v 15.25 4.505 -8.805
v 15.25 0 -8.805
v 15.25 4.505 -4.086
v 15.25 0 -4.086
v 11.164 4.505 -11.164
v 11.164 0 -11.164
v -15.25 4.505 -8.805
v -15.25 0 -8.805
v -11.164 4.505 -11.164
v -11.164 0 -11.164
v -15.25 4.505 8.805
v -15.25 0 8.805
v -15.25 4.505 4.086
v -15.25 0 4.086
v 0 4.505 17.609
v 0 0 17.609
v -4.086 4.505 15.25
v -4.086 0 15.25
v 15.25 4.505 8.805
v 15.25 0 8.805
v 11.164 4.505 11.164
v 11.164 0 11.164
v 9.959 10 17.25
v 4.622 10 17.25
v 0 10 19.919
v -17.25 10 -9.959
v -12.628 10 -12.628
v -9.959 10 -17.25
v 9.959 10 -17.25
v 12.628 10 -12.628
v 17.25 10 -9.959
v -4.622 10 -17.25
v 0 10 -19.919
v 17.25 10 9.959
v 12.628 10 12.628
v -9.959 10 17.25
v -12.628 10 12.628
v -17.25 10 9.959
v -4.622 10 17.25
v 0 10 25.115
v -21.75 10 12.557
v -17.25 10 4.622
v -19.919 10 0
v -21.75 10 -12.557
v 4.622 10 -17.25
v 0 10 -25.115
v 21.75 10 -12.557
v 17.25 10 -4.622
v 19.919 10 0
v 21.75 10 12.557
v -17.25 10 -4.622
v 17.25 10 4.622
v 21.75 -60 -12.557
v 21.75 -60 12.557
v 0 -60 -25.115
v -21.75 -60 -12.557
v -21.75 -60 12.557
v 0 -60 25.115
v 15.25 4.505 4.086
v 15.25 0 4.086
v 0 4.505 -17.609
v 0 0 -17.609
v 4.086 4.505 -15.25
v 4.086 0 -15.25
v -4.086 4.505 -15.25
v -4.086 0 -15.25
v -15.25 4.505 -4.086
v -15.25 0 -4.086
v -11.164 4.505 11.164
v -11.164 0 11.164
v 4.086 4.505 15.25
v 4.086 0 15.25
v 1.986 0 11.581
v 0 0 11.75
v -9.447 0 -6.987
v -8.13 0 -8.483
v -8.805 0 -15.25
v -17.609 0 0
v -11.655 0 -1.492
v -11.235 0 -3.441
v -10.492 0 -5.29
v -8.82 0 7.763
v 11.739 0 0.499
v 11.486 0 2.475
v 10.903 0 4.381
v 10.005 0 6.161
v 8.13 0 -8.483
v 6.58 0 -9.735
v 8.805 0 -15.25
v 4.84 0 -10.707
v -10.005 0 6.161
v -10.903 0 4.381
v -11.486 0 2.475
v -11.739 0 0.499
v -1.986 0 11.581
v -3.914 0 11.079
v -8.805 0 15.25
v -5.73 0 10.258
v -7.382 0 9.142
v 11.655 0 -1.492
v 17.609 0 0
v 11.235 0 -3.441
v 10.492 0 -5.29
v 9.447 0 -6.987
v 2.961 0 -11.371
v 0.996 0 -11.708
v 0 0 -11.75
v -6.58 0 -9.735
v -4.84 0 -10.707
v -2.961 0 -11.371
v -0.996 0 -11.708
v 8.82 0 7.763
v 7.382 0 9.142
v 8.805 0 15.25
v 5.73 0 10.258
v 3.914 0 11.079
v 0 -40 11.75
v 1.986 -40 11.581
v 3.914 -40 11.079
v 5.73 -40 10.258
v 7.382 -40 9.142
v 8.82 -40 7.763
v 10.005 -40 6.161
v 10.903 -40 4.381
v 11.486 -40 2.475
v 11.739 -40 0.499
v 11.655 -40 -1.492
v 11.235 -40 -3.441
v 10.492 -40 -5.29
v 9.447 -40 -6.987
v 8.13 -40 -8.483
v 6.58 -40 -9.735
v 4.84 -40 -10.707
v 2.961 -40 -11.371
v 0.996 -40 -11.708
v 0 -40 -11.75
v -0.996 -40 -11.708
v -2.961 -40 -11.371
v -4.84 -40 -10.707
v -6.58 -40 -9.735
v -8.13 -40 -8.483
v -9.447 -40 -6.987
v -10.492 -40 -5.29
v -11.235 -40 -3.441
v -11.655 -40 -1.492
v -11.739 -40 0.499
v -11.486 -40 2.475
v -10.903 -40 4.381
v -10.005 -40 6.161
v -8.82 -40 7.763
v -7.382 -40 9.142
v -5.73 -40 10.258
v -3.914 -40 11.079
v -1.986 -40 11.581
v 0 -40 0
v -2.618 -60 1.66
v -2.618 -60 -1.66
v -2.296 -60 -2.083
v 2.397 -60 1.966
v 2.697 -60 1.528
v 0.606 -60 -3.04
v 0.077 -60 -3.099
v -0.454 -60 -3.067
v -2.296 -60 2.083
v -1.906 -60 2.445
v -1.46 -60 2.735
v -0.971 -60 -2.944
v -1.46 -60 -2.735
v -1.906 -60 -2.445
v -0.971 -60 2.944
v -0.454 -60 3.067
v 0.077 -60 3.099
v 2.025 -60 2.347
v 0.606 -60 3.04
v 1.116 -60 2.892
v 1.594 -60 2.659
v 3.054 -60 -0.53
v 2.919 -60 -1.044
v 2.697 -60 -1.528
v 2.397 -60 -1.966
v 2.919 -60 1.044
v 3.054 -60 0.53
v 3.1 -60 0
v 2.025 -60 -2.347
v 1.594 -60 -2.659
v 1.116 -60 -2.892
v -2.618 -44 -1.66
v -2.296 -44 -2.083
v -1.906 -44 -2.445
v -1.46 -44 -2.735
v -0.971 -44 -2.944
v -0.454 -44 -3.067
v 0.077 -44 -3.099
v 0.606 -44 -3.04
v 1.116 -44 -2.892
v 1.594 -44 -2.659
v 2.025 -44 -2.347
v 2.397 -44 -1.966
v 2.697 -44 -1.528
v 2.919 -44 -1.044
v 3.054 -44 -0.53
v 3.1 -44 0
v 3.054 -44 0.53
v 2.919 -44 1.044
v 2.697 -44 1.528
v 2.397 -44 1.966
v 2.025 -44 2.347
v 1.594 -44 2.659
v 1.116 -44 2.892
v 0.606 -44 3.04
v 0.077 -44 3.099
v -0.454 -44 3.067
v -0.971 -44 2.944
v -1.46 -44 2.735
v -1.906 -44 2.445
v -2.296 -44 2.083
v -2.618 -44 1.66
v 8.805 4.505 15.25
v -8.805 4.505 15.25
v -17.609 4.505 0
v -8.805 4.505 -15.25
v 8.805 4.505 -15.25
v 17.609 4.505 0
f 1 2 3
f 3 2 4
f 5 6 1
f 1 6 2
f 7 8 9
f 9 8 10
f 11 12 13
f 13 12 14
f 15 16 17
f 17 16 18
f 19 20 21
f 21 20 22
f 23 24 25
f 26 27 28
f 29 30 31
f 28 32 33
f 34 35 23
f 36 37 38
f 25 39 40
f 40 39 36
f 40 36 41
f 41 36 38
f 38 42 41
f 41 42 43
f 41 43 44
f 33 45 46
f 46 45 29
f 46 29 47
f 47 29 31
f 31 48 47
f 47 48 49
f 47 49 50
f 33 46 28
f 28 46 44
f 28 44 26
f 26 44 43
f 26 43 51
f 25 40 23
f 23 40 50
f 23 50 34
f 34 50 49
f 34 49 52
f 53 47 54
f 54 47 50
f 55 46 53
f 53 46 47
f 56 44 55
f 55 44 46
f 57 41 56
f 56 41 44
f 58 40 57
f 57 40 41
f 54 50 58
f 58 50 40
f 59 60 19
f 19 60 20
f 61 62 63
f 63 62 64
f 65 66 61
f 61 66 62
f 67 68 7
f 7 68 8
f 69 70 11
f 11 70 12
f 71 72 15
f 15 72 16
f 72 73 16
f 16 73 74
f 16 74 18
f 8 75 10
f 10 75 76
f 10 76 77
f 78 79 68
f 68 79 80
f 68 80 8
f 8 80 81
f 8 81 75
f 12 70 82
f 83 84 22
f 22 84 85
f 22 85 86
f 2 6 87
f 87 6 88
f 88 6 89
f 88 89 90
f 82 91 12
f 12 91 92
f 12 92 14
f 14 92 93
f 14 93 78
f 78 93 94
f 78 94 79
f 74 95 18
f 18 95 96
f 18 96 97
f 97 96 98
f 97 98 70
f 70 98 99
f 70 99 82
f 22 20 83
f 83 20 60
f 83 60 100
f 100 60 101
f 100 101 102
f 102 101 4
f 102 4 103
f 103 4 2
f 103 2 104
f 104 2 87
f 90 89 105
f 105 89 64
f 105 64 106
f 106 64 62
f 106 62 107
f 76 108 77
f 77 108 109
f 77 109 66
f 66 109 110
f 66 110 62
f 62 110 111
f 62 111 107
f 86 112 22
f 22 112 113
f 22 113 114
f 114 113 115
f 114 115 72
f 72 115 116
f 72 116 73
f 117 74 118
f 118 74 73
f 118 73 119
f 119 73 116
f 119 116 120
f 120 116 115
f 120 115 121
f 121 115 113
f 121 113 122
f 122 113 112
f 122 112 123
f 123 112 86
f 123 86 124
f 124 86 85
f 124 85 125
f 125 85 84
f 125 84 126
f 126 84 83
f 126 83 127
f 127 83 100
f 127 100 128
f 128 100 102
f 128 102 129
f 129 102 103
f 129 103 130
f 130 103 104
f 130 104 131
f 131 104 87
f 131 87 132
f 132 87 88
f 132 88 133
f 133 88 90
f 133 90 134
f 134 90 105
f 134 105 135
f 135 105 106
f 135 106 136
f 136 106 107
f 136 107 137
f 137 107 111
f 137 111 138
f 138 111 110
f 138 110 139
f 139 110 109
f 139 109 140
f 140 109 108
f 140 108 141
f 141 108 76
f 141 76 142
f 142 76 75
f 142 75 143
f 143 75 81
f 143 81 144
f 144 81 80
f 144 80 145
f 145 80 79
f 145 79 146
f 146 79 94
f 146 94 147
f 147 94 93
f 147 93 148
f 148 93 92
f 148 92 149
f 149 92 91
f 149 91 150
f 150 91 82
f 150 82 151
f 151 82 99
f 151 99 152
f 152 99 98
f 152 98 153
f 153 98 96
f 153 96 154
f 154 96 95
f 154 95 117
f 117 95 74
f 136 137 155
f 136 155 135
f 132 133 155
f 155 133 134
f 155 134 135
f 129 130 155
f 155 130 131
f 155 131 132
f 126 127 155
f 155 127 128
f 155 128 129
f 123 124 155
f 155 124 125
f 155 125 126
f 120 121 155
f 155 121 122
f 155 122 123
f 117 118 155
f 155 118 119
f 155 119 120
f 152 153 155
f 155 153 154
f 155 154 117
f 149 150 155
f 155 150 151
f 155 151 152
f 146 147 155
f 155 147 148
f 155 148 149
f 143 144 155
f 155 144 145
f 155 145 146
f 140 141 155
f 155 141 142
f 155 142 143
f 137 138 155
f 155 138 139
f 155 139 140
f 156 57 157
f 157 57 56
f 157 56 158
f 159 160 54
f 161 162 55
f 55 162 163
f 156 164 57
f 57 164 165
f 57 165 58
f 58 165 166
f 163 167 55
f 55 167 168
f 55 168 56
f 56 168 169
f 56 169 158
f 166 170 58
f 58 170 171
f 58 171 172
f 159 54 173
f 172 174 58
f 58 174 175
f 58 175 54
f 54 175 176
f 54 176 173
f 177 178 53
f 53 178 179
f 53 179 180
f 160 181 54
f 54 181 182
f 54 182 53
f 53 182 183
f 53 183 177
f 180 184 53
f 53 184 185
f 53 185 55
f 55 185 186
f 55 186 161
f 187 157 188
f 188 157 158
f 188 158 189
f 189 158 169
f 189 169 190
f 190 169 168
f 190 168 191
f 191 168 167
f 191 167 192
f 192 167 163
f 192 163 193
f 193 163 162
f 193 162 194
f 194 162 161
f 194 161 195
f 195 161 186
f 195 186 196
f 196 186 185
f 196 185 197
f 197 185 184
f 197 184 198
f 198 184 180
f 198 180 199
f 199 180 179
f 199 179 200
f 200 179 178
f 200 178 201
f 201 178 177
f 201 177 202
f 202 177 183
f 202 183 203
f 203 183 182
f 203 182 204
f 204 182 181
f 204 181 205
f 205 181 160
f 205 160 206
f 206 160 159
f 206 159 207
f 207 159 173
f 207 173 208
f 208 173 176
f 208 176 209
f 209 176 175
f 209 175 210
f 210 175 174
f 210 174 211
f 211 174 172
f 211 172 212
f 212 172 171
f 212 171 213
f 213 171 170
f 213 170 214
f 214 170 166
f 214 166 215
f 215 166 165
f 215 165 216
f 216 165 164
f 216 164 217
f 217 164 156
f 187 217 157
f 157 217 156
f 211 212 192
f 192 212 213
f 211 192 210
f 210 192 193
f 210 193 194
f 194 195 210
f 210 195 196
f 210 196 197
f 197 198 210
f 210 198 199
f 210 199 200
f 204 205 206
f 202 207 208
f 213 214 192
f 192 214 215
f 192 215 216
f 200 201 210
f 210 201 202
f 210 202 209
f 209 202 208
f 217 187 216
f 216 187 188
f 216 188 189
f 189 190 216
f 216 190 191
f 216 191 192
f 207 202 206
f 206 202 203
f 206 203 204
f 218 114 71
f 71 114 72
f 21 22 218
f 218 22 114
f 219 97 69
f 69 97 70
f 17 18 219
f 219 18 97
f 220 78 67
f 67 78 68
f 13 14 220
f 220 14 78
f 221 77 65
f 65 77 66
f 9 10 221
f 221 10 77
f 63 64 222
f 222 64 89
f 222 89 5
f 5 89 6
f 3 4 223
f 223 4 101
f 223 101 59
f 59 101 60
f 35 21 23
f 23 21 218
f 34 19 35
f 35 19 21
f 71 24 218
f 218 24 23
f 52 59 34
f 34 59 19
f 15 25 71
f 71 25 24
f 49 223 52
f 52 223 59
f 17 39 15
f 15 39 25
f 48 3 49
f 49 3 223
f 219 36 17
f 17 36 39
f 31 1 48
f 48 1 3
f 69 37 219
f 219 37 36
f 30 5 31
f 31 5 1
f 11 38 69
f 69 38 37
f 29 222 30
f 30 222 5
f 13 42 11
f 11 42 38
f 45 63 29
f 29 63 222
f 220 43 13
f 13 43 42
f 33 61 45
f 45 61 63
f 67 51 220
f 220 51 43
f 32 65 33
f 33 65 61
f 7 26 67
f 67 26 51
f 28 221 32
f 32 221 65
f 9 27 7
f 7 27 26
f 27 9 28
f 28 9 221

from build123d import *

# Parameters (mm, degrees)
BOSS_EXTRUDE1_DEPTH = 10
SKETCH2_R           = 11.75
BOSS_EXTRUDE2_DEPTH = 40
BOSS_EXTRUDE3_DEPTH = 20
CUT_EXTRUDE1_DEPTH  = 16
CUT_EXTRUDE2_DEPTH  = 10
CHAMFER1_SIZE       = 2
CHAMFER1_SIZE2      = 5.494954839


with BuildPart() as part:
    # Sketch1 → Boss-Extrude1 (new body)
    with BuildSketch(Plane(origin=(0, 0, 0), x_dir=(1, 0, 0), z_dir=(0, 1, 0))):
        Polygon((21.75, 12.557368355), (0, 25.11473671), (-21.75, 12.557368355), (-21.75, -12.557368355), (0, -25.11473671), (21.75, -12.557368355), align=None)
        Polygon((15.25, 8.804591605), (0, 17.60918321), (-15.25, 8.804591605), (-15.25, -8.804591605), (0, -17.60918321), (15.25, -8.804591605), align=None, mode=Mode.SUBTRACT)
    extrude(amount=BOSS_EXTRUDE1_DEPTH)

    # Sketch2 → Boss-Extrude2 (add)
    with BuildSketch(Plane.XZ):
        Polygon((21.75, 12.557368355), (0, 25.11473671), (-21.75, 12.557368355), (-21.75, -12.557368355), (0, -25.11473671), (21.75, -12.557368355), align=None)
        with Locations(Location((0, 0, 0), (0, 0, 270))):
            Circle(SKETCH2_R, mode=Mode.SUBTRACT)
    extrude(amount=BOSS_EXTRUDE2_DEPTH)

    # Sketch3 → Boss-Extrude3 (add)
    with BuildSketch(Plane.XZ.offset(40)):
        Polygon((21.75, 12.557368355), (0, 25.11473671), (-21.75, 12.557368355), (-21.75, -12.557368355), (0, -25.11473671), (21.75, -12.557368355), align=None)
    extrude(amount=BOSS_EXTRUDE3_DEPTH)

    # Sketch4 → Cut-Extrude1 (cut)
    with BuildSketch(Plane.XZ.offset(60)):
        with BuildLine():
            Line((-2.618090908, 1.66), (-2.618090908, -1.66))
            ThreePointArc((-2.618090908, -1.66), (3.1, 0), (-2.618090908, 1.66))
        make_face()
    extrude(amount=-CUT_EXTRUDE1_DEPTH, mode=Mode.SUBTRACT)

    # Sketch5 → Cut-Extrude2 (cut)
    with BuildSketch(Plane(origin=(0, 10, 0), x_dir=(1, 0, 0), z_dir=(0, 1, 0))):
        Polygon((8.804591605, 15.25), (-8.804591605, 15.25), (-17.60918321, 0), (-8.804591605, -15.25), (8.804591605, -15.25), (17.60918321, 0), align=None)
    extrude(amount=-CUT_EXTRUDE2_DEPTH, mode=Mode.SUBTRACT)

    # Chamfer1
    chamfer1_edges = [part.edges().sort_by_distance(p)[0] for p in [
        (-13.206887408, 10, -9.98418321),
        (2.043112592, 10, -16.429591605),
        (15.25, 10, -6.445408395),
        (16.429591605, 10, 2.043112592),
        (16.429591605, 10, -2.043112592),
        (9.98418321, 10, -13.206887408),
        (6.445408395, 10, -15.25),
        (-6.445408395, 10, -15.25),
        (-9.98418321, 10, -13.206887408),
        (-16.429591605, 10, -2.043112592),
        (-16.429591605, 10, 2.043112592),
        (-9.98418321, 10, 13.206887408),
        (-6.445408395, 10, 15.25),
        (6.445408395, 10, 15.25),
        (9.98418321, 10, 13.206887408),
        (15.25, 10, 6.445408395),
        (13.206887408, 10, -9.98418321),
        (-2.043112592, 10, -16.429591605),
        (-15.25, 10, -6.445408395),
        (-13.206887408, 10, 9.98418321),
        (2.043112592, 10, 16.429591605),
        (13.206887408, 10, 9.98418321),
        (-2.043112592, 10, 16.429591605),
        (-15.25, 10, 6.445408395),
    ]]
    chamfer1_side = [part.faces().sort_by_distance(p)[0] for p in [
        (10.542763262, 10, -18.260601622),
    ]]
    chamfer(chamfer1_edges, length=CHAMFER1_SIZE, length2=CHAMFER1_SIZE2, reference=chamfer1_side[0])


solid = part.part
